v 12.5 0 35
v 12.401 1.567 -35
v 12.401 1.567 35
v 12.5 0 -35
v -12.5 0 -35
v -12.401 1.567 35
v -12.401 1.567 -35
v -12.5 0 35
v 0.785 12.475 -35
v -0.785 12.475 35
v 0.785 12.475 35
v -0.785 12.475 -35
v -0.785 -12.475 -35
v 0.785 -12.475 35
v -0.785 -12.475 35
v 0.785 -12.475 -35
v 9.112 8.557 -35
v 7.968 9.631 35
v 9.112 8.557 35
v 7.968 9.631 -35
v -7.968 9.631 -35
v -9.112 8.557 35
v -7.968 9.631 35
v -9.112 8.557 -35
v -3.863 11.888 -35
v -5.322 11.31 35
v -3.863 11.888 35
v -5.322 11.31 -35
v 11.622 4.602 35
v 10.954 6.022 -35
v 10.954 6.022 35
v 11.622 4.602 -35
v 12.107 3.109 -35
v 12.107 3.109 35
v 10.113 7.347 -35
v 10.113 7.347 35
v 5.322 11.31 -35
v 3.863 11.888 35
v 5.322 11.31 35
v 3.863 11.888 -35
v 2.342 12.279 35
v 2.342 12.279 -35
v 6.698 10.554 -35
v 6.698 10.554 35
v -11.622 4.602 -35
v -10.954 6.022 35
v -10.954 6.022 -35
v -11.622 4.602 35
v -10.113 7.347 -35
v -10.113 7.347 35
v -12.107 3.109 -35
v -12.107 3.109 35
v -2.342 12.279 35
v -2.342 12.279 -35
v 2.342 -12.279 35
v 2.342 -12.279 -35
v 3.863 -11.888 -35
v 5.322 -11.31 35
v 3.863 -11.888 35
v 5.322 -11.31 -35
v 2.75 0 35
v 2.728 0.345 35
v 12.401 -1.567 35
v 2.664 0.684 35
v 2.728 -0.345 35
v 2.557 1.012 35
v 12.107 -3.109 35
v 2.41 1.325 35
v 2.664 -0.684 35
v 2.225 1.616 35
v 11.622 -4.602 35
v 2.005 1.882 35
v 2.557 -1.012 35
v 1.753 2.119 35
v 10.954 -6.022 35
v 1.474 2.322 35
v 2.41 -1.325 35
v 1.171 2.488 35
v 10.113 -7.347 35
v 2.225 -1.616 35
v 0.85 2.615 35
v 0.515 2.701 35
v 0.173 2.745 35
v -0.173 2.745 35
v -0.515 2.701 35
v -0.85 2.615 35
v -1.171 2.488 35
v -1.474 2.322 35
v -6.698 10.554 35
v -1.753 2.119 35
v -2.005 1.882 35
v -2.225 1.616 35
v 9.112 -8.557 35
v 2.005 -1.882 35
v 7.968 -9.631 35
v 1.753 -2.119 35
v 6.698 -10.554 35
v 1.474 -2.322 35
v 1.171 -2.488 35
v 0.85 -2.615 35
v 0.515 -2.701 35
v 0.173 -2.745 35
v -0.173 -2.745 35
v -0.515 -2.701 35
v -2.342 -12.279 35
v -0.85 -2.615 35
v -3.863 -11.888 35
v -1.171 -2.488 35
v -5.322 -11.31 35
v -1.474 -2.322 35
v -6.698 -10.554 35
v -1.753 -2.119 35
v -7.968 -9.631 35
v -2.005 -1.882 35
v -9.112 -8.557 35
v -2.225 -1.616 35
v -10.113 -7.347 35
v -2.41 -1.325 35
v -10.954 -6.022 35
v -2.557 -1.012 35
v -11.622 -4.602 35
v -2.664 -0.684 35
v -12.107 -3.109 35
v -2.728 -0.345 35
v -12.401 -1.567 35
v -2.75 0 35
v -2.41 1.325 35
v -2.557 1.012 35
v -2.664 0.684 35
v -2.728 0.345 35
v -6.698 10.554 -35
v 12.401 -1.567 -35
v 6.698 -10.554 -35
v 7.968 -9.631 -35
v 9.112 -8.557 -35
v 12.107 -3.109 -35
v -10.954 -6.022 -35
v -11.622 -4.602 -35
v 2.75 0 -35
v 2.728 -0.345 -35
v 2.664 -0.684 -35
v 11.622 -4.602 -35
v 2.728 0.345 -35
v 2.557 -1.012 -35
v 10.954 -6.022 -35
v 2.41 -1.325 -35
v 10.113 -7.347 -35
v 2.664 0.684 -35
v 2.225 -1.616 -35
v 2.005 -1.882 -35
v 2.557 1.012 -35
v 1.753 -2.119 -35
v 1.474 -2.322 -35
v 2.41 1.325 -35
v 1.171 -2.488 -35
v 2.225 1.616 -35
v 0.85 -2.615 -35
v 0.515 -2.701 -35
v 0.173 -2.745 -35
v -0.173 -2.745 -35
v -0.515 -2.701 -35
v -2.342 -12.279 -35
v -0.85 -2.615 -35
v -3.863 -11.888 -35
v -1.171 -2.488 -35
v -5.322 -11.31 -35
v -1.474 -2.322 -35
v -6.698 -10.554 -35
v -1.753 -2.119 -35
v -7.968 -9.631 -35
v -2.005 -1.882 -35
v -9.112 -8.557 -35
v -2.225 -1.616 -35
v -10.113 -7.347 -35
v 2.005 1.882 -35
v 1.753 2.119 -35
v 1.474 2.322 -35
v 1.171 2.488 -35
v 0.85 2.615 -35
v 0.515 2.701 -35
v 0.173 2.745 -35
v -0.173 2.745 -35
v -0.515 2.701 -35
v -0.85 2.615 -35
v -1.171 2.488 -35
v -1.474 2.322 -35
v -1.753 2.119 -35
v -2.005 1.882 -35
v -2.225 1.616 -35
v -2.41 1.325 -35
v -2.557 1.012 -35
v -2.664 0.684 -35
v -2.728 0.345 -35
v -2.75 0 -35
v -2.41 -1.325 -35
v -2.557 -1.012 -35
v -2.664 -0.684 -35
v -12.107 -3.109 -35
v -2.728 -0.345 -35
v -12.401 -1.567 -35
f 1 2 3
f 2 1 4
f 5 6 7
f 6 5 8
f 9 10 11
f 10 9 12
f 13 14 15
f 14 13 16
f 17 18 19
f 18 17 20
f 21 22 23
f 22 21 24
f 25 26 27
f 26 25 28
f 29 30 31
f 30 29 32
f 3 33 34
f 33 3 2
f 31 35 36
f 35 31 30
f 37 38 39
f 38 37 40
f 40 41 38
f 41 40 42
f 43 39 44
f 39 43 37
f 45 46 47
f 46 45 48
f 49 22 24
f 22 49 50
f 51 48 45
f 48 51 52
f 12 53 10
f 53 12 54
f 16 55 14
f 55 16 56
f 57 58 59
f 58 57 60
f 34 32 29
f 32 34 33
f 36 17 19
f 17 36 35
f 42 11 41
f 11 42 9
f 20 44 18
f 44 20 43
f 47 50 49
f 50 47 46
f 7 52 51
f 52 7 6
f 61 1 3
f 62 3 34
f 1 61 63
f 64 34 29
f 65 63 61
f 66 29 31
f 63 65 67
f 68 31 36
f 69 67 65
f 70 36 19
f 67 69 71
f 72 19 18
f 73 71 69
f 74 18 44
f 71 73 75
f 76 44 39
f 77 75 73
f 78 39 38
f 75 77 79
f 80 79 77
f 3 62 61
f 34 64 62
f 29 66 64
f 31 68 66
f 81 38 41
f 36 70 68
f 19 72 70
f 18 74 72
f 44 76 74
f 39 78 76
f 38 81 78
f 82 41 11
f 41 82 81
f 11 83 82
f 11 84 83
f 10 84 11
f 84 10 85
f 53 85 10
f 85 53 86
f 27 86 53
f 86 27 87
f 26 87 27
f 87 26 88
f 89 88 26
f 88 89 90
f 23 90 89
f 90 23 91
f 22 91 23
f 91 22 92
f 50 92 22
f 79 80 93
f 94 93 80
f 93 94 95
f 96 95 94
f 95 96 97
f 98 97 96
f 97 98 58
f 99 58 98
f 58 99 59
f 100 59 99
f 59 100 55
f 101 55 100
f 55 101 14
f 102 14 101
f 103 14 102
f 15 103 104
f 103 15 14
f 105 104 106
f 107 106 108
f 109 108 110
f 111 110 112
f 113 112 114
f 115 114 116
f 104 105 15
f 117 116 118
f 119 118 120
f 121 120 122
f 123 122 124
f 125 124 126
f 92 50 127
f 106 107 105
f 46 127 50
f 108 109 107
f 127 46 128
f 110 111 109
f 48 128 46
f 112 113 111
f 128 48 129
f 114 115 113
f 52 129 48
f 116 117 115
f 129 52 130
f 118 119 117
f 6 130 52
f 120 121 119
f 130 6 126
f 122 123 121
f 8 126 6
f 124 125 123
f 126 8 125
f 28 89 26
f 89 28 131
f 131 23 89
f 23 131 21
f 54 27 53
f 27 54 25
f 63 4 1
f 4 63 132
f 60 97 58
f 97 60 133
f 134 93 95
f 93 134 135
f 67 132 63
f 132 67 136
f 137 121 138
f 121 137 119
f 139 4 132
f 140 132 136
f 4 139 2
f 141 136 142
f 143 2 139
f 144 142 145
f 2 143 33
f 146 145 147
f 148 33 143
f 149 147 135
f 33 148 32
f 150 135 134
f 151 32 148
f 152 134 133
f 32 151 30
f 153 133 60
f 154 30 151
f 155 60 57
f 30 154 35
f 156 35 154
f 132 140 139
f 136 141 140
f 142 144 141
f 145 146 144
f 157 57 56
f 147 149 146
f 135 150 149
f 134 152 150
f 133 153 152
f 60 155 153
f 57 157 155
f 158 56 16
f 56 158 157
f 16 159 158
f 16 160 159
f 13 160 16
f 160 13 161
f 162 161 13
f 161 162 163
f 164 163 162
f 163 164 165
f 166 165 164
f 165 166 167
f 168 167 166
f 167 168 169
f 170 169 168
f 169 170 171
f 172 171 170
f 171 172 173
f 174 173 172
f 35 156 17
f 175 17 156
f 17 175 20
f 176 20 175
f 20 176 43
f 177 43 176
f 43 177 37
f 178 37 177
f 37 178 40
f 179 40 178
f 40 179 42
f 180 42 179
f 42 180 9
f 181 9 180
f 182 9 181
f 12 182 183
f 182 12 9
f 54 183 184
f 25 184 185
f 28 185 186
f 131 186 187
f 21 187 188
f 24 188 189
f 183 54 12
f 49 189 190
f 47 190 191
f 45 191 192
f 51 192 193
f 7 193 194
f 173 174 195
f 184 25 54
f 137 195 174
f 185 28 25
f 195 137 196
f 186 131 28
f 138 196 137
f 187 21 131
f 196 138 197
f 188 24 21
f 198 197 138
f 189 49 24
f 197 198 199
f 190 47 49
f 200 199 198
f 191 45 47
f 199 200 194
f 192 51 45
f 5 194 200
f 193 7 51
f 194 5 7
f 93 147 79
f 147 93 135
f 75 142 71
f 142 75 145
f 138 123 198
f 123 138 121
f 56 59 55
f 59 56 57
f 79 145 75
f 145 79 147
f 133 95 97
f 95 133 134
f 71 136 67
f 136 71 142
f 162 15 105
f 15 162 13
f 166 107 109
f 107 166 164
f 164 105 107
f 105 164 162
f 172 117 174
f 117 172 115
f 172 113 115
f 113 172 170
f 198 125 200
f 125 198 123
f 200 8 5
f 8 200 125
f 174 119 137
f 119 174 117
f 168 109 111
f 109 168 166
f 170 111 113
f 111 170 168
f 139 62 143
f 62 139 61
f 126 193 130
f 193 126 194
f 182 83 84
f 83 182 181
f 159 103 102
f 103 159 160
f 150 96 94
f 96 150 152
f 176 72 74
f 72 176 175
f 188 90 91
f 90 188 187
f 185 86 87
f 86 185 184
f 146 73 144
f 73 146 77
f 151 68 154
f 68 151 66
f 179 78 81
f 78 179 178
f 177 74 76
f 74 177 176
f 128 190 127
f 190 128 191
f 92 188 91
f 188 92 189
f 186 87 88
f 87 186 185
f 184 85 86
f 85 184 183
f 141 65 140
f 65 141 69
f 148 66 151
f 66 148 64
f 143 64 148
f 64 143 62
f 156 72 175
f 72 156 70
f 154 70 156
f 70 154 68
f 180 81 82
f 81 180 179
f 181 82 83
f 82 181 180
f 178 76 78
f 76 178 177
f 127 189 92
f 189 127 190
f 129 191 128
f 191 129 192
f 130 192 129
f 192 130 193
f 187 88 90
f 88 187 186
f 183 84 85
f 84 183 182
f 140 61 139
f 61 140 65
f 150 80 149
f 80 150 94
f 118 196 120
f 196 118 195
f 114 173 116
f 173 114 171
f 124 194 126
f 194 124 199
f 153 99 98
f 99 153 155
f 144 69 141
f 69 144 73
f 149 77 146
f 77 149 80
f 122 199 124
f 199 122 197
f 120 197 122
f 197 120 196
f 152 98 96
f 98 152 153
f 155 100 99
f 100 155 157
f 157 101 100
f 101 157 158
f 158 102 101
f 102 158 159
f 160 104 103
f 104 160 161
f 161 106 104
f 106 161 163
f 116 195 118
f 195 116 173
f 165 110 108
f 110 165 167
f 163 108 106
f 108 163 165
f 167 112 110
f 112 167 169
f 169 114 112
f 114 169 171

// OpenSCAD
$fn = 50;


difference() {
	union() {
		translate(v = [0, 0, -35.0000000000]) {
			cylinder(h = 70, r = 12.5000000000);
		}
	}
	union() {
		translate(v = [0, 0, -100.0000000000]) {
			cylinder(h = 200, r = 2.7500000000);
		}
	}
}
